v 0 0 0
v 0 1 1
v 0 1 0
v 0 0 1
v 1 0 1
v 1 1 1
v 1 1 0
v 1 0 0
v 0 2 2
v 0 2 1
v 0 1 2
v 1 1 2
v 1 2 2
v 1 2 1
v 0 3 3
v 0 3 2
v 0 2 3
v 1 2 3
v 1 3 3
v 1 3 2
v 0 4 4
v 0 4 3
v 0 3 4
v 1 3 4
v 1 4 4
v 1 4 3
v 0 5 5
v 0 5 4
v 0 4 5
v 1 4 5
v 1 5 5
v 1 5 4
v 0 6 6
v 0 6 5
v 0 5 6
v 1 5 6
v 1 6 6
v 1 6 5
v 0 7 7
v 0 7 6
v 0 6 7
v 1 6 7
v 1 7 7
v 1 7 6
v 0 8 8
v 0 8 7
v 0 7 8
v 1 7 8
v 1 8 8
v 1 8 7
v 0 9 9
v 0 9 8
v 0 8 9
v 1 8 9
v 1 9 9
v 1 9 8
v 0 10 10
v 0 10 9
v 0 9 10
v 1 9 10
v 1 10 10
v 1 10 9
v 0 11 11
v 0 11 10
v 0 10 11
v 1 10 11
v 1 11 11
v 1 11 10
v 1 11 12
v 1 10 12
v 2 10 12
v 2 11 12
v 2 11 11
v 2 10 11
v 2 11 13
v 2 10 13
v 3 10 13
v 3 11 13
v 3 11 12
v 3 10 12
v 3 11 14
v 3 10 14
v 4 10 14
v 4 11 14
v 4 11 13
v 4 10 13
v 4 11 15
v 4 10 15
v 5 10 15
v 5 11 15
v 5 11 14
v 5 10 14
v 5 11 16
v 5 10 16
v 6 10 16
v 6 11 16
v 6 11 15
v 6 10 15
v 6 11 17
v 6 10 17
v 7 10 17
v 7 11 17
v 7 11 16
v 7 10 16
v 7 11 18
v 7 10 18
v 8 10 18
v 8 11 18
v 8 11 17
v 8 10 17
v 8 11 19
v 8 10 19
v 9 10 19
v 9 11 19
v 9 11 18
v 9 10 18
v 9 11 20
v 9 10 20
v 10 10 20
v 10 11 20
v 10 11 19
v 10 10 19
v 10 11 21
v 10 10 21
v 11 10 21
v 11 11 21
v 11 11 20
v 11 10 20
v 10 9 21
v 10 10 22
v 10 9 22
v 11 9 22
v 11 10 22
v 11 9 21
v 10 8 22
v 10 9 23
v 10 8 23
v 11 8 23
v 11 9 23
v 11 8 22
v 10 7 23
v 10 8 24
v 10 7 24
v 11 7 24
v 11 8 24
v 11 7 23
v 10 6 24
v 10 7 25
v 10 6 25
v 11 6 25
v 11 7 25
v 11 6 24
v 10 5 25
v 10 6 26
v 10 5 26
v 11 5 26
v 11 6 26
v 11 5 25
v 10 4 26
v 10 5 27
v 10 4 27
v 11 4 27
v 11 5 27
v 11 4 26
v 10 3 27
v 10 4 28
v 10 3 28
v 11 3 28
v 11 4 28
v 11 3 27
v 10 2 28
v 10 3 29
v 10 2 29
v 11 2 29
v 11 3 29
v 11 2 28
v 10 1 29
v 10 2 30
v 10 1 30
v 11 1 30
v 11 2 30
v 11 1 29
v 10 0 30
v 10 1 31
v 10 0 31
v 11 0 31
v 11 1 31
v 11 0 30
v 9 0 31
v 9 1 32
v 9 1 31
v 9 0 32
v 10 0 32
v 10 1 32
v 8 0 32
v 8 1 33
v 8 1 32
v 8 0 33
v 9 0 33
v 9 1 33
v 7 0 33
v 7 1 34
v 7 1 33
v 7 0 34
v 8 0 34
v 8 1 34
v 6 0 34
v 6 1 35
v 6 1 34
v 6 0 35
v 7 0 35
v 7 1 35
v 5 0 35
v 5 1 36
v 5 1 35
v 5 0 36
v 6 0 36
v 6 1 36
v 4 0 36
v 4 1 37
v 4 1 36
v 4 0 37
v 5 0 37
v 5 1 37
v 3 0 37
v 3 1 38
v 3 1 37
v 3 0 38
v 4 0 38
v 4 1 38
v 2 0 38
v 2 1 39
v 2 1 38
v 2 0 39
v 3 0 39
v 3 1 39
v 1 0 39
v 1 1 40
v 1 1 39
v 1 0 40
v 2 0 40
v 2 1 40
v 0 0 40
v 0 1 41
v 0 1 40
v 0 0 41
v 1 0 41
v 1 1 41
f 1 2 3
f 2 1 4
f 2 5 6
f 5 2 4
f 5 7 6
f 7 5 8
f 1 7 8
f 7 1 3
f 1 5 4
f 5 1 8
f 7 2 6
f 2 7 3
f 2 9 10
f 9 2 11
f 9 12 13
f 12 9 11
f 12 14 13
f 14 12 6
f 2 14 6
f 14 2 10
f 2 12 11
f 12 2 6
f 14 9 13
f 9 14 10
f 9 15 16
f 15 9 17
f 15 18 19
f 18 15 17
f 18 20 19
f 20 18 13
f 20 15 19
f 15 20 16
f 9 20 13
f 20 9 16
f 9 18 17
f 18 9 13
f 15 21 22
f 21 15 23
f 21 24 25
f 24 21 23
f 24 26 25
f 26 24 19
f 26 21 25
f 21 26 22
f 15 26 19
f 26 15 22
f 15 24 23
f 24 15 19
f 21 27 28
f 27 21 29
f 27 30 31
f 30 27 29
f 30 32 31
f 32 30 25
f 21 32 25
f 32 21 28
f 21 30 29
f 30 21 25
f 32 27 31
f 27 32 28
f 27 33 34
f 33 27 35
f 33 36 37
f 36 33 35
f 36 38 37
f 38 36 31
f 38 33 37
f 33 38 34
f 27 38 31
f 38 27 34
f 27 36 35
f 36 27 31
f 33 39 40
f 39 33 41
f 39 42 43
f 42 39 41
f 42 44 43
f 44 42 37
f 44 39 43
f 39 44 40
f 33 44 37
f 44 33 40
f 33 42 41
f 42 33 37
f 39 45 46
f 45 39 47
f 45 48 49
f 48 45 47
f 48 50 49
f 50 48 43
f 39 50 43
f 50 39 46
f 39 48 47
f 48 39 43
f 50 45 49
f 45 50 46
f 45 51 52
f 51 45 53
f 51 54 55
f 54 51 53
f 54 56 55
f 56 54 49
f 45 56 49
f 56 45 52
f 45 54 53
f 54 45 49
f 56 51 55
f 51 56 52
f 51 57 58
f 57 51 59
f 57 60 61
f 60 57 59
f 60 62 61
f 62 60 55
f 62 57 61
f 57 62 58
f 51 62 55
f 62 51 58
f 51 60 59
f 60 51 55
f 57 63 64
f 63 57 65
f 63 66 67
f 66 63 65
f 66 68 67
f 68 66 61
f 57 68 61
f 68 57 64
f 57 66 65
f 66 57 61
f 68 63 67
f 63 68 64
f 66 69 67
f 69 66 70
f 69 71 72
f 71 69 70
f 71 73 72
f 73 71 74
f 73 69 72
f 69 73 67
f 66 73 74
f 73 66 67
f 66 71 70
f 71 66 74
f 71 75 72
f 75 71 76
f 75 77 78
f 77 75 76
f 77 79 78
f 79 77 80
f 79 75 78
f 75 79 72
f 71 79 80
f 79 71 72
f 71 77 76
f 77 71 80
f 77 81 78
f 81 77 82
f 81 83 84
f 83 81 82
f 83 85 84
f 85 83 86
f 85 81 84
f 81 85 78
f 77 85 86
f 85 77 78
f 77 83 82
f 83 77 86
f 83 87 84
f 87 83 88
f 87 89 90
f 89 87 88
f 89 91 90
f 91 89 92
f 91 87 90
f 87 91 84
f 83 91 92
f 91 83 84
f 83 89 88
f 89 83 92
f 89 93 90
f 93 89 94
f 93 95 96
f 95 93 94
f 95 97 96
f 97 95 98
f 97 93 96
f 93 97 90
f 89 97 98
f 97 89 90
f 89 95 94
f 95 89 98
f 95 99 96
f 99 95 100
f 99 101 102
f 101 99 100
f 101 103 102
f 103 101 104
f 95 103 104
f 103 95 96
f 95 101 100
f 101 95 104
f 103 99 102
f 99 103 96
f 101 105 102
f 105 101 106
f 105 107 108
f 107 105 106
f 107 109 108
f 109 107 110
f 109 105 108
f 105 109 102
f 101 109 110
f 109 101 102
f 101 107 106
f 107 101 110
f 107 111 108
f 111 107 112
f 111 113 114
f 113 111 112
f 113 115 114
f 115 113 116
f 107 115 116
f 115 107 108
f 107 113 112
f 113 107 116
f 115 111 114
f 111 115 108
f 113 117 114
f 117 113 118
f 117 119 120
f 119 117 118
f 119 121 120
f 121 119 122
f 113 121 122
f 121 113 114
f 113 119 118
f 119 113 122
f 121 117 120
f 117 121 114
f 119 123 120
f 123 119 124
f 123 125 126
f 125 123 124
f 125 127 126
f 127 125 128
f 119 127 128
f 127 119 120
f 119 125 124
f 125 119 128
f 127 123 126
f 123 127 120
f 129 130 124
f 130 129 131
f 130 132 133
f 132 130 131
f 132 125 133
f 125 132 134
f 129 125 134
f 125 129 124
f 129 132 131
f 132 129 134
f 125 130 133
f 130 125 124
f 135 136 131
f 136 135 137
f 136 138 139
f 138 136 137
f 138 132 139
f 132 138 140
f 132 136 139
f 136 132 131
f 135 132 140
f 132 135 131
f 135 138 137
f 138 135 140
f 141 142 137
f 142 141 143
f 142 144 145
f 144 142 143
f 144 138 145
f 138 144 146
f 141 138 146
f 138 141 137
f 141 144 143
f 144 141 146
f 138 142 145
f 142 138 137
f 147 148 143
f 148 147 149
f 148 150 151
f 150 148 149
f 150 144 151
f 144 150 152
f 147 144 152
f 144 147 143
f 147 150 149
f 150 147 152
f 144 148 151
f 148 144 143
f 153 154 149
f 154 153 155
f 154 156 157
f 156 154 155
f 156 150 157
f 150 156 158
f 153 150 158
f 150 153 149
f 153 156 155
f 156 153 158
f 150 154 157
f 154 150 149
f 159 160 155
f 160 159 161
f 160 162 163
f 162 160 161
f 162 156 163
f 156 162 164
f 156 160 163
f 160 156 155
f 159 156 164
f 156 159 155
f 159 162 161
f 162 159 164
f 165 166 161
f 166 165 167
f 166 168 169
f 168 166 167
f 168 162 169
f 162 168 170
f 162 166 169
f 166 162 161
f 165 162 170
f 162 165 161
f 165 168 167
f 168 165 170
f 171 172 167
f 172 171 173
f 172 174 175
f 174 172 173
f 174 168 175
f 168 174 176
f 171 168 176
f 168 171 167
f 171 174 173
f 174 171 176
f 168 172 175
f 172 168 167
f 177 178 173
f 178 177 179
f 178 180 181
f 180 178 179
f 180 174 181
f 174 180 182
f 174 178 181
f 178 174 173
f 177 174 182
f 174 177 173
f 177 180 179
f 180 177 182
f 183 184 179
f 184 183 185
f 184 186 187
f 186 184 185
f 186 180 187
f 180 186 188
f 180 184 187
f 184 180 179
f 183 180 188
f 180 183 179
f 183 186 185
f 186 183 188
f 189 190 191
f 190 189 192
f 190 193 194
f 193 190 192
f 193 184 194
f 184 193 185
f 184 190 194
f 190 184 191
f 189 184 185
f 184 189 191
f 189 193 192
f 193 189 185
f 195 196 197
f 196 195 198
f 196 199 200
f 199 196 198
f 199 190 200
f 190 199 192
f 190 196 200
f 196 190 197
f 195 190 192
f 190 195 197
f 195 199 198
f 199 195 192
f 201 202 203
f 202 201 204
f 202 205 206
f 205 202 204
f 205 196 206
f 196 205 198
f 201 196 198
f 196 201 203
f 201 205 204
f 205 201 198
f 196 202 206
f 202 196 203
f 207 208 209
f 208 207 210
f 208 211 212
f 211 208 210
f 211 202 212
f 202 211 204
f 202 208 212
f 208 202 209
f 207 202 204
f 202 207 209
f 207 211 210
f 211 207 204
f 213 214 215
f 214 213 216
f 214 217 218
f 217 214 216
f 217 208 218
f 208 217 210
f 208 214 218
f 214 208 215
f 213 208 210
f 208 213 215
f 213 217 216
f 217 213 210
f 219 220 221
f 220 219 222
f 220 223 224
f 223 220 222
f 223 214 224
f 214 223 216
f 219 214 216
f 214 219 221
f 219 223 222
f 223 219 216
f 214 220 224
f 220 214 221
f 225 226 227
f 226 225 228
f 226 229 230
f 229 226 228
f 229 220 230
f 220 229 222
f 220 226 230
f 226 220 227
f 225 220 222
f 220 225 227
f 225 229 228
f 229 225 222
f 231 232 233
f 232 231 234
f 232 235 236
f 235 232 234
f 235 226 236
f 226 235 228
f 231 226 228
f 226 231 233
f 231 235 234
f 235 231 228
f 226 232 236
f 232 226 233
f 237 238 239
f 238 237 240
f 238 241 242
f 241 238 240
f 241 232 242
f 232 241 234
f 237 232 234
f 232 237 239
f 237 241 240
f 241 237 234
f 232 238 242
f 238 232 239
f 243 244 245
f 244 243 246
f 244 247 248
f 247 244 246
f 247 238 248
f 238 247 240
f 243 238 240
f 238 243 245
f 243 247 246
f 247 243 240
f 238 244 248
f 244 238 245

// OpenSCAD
for (i=[0:10]){
    translate([0,i-3,i-3]){
        //color([1,0,1/i*3])
        cube(1);
    }
    i=i+3;
}

for (i=[0:10]){
    translate([i-3,10,i+7]){
        //color([1,0,1/i*3])
        cube(1);
    }
    i=i+3;
}

j=13;
for (i=[0:10]){
    translate([10,j-i,i+17]){
        //color([1,0,1/i*3])
        cube(1);
    }
    i=i+3;
}

j=13;
for (i=[0:10]){
    translate([j-i,0,i+27]){
        //color([1,0,1/i*3])
        cube(1);
    }
    i=i+3;
}
